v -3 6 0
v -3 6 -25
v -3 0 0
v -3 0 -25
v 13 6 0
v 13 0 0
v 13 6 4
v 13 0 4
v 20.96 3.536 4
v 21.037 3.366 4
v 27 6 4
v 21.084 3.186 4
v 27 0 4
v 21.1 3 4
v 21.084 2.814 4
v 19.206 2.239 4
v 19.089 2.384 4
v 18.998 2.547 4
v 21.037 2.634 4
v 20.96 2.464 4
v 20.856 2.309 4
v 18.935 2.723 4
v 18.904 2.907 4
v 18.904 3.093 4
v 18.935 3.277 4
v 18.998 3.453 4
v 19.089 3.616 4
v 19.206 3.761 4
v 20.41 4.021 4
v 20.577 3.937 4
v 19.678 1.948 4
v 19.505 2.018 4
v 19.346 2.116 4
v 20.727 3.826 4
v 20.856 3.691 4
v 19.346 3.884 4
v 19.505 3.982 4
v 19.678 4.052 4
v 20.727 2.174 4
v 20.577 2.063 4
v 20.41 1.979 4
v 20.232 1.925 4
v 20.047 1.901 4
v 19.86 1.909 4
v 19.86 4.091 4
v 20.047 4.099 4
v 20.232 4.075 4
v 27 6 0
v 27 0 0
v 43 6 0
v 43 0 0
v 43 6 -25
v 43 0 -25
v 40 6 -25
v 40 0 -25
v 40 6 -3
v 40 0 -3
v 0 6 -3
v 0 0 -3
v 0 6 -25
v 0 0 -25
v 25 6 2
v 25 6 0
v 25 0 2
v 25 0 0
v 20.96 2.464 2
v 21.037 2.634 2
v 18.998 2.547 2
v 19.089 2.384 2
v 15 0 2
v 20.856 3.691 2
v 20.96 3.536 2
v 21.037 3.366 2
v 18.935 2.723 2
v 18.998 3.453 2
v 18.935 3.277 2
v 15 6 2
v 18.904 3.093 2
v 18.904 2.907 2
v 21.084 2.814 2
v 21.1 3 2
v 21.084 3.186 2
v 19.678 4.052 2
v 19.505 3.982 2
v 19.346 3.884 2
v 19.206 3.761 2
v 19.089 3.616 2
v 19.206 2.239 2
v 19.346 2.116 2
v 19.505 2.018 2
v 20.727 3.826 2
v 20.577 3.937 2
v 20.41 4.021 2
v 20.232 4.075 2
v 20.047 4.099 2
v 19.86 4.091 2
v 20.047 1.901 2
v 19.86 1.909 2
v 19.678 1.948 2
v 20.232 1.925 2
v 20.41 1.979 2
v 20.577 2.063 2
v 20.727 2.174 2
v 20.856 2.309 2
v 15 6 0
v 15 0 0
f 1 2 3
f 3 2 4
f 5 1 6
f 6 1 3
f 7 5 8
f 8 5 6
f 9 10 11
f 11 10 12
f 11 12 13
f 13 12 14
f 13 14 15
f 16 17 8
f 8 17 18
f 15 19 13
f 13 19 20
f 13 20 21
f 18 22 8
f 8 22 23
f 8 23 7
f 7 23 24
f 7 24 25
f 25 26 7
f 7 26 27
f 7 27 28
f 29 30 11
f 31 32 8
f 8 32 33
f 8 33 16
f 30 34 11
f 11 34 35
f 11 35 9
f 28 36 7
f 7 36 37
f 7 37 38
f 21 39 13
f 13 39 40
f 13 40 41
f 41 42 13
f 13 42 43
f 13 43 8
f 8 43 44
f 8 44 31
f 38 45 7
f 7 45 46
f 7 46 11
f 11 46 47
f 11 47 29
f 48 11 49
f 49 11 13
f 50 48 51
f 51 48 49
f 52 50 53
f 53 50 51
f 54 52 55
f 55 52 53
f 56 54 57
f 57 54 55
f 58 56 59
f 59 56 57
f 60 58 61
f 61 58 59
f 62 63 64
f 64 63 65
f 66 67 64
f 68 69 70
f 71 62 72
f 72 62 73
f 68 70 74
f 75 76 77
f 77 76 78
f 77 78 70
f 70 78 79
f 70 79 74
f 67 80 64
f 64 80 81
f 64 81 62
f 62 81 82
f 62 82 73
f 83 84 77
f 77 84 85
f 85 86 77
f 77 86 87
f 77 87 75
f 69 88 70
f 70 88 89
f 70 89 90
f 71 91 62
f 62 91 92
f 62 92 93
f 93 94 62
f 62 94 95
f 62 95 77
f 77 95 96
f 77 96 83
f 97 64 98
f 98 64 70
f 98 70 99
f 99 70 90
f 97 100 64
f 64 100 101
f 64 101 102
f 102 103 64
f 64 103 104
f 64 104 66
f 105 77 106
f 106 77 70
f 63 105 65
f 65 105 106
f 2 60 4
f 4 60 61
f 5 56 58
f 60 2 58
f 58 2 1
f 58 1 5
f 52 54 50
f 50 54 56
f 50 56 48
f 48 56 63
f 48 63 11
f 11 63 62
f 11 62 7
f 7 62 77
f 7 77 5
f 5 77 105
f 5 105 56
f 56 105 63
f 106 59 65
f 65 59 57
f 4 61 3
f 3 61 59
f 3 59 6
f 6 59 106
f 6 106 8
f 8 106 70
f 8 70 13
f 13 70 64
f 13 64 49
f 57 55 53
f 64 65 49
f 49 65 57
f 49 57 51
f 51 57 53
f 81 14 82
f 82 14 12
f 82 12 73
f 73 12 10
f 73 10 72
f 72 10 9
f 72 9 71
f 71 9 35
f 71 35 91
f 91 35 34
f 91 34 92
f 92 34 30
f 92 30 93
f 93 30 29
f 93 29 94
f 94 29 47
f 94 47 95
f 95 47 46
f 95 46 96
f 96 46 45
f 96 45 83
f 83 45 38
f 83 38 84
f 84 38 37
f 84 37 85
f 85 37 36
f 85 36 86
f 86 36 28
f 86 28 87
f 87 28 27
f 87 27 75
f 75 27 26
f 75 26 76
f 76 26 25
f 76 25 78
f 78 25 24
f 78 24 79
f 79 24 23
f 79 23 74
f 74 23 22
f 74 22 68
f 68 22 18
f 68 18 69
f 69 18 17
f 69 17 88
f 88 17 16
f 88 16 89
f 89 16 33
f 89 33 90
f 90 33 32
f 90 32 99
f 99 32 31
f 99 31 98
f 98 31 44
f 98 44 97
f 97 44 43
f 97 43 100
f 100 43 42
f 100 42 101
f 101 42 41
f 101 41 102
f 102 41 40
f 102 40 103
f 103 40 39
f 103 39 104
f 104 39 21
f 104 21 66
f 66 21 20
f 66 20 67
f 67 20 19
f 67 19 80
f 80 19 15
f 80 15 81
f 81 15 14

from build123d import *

# Parameters (mm, degrees)
BOSS_EXTRUDE1_DEPTH = 6
SKETCH2_R           = 1.1
CUT_EXTRUDE1_DEPTH  = 2


with BuildPart() as part:
    # Sketch1 → Boss-Extrude1 (new body)
    with BuildSketch(Plane(origin=(0, 0, 0), x_dir=(1, 0, 0), z_dir=(0, 1, 0))):
        Polygon((13, 0), (13, -4), (27, -4), (27, 0), (43, 0), (43, 25), (40, 25), (40, 3), (0, 3), (0, 25), (-3, 25), (-3, 0), align=None)
        Polygon((25, -2), (20, -2), (15, -2), (15, 0), (25, 0), align=None, mode=Mode.SUBTRACT)
    extrude(amount=BOSS_EXTRUDE1_DEPTH)

    # Sketch2 → Cut-Extrude1 (cut)
    with BuildSketch(Plane.XY.offset(4)):
        with Locations((20, 3)):
            Circle(SKETCH2_R)
    extrude(amount=-CUT_EXTRUDE1_DEPTH, mode=Mode.SUBTRACT)


solid = part.part
